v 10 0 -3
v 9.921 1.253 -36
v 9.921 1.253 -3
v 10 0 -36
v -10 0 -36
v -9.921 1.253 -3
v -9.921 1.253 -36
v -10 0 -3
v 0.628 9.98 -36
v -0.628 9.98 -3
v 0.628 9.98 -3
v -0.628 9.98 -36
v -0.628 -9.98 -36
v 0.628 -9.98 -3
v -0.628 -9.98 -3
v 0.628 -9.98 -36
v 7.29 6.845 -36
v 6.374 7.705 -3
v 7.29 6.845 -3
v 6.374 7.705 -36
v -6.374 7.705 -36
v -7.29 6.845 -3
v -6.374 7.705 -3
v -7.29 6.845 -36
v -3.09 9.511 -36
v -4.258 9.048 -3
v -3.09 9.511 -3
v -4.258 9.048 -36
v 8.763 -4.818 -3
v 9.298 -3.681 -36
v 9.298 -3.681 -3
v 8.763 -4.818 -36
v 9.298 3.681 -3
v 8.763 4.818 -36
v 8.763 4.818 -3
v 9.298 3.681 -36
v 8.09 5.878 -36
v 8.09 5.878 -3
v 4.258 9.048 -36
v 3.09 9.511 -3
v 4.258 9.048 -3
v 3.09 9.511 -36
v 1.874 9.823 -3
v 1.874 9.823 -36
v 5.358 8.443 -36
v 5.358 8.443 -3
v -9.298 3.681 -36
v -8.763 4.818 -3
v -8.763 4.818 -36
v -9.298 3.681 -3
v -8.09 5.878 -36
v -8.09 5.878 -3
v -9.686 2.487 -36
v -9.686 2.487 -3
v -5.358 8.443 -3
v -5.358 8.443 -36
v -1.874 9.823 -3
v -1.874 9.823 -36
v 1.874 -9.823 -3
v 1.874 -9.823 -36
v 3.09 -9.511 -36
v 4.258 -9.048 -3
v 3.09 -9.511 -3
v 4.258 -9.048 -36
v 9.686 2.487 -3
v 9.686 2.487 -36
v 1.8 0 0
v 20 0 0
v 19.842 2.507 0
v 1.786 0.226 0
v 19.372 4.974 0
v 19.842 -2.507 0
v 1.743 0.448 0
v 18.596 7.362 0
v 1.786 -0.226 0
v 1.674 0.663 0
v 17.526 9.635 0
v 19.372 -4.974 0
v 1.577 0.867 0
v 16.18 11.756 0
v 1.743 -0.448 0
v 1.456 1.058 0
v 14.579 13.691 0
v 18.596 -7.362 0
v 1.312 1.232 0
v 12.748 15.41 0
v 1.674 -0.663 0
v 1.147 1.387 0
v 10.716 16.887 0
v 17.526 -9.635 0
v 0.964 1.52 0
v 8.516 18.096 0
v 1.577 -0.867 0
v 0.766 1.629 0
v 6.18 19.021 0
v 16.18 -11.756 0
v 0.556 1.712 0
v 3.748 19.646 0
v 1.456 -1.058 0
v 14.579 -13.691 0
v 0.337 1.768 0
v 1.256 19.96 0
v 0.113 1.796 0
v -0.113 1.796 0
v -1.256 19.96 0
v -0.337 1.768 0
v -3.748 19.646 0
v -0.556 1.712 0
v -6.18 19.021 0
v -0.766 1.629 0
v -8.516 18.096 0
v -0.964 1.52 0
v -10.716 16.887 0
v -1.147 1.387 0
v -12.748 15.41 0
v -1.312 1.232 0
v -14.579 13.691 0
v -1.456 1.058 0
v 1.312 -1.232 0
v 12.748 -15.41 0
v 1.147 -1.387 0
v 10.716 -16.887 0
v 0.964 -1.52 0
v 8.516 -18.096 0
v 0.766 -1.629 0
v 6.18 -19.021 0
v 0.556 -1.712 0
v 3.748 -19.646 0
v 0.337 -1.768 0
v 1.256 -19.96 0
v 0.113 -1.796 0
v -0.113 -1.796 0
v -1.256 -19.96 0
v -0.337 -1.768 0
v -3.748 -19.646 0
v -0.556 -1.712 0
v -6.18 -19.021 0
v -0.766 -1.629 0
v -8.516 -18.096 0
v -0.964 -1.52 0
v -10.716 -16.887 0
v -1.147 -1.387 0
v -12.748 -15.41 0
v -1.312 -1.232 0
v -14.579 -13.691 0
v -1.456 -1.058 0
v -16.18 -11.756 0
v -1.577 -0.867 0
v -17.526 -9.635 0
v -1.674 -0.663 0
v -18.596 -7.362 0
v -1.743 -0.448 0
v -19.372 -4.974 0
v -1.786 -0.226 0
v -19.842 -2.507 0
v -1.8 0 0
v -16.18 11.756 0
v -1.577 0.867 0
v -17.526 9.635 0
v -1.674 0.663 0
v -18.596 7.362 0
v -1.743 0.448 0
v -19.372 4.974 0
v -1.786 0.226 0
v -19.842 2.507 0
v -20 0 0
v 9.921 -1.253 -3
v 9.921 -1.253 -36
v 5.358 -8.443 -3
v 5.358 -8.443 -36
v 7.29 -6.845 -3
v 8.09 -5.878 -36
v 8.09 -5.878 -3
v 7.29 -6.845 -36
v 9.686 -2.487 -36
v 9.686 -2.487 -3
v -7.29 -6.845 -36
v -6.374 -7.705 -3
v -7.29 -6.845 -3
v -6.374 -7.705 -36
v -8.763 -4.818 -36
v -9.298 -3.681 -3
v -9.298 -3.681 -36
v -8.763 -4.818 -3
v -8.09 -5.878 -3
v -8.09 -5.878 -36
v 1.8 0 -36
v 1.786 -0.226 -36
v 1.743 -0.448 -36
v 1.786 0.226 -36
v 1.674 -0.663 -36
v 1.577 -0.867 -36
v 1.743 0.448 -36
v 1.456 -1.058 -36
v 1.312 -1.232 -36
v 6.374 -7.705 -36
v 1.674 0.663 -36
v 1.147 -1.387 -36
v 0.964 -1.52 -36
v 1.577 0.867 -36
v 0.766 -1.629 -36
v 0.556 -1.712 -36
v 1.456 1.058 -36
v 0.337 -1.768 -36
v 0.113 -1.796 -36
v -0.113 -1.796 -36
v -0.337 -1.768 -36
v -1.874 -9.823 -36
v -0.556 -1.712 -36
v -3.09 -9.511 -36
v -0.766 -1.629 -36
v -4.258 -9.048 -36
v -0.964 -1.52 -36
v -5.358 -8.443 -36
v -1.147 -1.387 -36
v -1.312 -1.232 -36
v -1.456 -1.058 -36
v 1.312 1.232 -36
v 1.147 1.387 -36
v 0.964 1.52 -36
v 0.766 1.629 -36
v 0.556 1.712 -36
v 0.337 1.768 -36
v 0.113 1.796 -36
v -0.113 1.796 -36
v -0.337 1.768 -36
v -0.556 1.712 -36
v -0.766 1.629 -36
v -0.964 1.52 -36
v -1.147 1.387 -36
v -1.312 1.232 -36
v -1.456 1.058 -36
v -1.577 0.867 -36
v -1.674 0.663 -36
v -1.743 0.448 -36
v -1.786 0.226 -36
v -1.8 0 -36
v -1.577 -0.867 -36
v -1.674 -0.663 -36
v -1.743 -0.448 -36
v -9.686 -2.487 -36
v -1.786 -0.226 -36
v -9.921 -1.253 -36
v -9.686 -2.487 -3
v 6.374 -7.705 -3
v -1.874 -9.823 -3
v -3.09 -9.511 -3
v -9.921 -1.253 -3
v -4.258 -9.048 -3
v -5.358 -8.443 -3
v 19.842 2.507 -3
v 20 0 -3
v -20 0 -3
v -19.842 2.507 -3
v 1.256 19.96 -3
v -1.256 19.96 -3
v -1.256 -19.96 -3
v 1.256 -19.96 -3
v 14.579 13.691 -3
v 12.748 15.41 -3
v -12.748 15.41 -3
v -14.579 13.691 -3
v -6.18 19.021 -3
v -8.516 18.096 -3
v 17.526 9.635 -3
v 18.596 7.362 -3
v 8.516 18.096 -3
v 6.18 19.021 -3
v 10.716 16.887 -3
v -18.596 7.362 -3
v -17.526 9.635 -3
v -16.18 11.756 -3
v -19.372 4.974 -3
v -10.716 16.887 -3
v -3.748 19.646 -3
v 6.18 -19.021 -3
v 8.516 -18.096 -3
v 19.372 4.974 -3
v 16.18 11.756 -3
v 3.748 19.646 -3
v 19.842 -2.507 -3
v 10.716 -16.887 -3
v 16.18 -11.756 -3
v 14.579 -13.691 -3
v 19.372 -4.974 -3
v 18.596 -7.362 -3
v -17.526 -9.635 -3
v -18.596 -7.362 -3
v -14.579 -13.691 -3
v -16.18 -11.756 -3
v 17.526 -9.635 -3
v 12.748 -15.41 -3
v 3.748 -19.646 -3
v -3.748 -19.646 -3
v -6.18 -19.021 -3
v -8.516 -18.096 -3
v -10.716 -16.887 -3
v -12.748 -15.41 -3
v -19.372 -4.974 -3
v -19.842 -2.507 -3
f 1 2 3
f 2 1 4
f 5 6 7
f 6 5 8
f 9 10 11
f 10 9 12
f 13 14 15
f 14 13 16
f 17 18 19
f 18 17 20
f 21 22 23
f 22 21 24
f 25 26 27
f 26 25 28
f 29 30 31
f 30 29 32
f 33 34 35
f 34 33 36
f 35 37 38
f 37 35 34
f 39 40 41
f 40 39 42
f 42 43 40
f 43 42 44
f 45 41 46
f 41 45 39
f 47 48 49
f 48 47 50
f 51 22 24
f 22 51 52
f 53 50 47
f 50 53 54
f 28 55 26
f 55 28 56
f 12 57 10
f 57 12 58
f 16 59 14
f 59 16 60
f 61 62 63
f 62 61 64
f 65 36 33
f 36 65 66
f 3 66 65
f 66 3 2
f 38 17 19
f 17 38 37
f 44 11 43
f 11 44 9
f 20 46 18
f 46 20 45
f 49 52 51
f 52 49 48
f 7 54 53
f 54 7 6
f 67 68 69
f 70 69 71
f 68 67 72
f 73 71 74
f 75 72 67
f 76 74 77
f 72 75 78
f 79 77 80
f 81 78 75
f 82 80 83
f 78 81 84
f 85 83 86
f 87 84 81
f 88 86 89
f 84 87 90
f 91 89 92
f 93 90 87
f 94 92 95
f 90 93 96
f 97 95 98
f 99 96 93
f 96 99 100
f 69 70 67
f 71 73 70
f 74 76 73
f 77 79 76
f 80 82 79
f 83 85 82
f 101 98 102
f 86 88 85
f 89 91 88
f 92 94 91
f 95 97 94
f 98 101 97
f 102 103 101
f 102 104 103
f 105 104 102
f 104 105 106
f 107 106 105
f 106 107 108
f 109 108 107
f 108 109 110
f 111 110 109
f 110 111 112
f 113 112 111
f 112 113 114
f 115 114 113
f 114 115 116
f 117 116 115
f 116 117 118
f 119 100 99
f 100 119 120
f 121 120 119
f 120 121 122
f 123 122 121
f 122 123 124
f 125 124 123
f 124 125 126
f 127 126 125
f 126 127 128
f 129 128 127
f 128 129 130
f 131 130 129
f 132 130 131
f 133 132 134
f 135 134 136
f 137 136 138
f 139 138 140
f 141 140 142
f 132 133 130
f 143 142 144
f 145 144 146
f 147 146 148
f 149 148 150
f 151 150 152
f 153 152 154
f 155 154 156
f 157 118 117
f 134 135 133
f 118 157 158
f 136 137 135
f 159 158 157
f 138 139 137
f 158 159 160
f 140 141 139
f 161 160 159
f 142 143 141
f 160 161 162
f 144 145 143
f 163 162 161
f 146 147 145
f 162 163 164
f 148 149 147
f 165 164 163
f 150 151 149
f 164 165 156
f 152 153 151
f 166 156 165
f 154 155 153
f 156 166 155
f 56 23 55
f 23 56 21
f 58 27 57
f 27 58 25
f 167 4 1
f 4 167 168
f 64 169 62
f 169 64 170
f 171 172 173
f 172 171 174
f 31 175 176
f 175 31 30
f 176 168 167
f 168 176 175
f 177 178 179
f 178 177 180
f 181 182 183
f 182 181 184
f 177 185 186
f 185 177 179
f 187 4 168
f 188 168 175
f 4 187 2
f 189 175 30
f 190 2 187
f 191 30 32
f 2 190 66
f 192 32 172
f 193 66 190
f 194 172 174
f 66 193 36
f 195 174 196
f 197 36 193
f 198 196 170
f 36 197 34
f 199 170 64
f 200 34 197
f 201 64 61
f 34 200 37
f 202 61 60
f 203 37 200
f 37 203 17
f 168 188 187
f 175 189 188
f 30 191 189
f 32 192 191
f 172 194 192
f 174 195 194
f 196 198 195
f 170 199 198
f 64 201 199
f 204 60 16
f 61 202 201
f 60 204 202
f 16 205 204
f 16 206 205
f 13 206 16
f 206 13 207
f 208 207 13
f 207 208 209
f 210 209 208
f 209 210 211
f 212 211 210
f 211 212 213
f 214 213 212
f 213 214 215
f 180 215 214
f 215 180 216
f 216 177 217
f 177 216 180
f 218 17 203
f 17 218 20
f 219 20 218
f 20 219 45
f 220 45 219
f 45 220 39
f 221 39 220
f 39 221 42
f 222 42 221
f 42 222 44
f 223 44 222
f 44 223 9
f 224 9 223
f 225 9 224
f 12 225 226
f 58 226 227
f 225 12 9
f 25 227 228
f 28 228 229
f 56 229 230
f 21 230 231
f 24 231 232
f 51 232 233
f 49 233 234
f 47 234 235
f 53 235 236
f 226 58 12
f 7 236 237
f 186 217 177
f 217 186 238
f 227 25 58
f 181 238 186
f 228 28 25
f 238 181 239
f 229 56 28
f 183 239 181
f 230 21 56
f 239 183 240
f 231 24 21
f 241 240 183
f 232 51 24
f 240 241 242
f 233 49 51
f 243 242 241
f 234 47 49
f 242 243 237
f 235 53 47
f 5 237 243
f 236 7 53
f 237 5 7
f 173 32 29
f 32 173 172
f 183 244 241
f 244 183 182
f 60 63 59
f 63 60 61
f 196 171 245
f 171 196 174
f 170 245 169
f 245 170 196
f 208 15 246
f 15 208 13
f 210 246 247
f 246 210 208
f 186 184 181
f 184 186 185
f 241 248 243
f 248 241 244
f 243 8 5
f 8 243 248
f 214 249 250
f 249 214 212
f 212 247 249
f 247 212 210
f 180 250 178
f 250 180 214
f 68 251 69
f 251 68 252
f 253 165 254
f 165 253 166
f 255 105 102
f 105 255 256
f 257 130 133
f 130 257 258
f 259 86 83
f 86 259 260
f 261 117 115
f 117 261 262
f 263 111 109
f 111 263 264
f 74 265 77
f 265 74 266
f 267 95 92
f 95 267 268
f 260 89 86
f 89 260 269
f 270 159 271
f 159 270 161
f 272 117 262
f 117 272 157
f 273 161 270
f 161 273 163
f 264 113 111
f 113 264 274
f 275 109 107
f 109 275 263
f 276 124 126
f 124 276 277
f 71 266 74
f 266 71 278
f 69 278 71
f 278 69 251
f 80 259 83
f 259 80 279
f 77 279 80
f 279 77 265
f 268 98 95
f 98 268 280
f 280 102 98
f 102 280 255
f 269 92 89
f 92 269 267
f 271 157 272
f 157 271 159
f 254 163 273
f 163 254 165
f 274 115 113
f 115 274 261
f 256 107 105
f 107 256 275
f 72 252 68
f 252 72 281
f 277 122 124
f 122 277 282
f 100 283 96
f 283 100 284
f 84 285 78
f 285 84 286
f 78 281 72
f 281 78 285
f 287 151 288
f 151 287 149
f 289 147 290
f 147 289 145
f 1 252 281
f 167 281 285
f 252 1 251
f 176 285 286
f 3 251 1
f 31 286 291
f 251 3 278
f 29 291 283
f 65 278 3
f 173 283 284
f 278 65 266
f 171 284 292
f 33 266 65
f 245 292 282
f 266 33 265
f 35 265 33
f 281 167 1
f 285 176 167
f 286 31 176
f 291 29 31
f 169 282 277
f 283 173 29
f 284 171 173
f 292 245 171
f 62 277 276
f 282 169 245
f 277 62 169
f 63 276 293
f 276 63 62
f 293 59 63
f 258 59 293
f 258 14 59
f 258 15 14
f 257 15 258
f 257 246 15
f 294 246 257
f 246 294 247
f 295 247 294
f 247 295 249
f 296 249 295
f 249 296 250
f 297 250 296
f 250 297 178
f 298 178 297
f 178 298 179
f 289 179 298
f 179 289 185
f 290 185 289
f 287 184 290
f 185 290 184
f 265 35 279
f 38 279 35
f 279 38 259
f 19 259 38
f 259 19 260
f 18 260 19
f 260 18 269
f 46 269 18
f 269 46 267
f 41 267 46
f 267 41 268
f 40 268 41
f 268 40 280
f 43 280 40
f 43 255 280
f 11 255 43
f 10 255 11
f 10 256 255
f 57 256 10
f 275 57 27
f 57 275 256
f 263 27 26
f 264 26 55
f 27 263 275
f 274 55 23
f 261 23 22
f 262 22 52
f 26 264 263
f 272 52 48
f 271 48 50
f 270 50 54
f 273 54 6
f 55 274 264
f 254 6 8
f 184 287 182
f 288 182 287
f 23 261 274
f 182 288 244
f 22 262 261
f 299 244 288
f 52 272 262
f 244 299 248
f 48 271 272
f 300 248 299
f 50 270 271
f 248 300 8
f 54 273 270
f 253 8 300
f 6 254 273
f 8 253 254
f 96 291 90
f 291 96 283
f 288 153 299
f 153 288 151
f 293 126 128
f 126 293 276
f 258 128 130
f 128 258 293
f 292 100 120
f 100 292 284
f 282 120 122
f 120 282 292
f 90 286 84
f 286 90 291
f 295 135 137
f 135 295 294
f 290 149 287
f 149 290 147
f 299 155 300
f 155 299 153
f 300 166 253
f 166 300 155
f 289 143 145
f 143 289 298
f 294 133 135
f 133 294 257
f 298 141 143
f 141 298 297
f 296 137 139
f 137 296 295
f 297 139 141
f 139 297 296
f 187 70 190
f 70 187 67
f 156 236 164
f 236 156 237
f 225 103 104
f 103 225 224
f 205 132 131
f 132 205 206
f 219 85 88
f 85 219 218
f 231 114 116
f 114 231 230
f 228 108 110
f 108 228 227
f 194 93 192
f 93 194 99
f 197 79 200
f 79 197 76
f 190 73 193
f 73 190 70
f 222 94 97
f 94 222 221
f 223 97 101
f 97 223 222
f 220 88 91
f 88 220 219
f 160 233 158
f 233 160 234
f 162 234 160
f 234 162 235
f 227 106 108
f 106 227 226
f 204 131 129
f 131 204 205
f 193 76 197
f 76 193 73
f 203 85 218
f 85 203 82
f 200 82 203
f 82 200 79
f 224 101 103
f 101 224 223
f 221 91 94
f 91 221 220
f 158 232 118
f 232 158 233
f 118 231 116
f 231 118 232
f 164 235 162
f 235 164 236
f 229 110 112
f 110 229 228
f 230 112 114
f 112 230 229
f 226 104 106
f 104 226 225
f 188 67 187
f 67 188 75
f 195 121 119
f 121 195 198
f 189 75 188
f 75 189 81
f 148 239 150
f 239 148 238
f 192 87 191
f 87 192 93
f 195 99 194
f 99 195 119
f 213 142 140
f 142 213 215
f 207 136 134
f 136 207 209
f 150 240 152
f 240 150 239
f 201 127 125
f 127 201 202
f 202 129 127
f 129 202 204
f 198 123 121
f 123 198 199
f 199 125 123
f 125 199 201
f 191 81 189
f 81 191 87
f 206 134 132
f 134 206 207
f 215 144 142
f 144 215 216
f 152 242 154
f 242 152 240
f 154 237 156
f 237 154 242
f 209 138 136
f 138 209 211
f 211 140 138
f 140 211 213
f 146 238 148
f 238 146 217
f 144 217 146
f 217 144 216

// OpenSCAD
$fn = 50;


difference() {
	union() {
		translate(v = [0, 0, -36.0000000000]) {
			cylinder(h = 36, r = 10.0000000000);
		}
		translate(v = [0, 0, -3.0000000000]) {
			cylinder(h = 3, r = 20.0000000000);
		}
	}
	union() {
		#translate(v = [0, 0, -36]) {
			cylinder(h = 36, r = 1.8000000000);
		}
	}
}
